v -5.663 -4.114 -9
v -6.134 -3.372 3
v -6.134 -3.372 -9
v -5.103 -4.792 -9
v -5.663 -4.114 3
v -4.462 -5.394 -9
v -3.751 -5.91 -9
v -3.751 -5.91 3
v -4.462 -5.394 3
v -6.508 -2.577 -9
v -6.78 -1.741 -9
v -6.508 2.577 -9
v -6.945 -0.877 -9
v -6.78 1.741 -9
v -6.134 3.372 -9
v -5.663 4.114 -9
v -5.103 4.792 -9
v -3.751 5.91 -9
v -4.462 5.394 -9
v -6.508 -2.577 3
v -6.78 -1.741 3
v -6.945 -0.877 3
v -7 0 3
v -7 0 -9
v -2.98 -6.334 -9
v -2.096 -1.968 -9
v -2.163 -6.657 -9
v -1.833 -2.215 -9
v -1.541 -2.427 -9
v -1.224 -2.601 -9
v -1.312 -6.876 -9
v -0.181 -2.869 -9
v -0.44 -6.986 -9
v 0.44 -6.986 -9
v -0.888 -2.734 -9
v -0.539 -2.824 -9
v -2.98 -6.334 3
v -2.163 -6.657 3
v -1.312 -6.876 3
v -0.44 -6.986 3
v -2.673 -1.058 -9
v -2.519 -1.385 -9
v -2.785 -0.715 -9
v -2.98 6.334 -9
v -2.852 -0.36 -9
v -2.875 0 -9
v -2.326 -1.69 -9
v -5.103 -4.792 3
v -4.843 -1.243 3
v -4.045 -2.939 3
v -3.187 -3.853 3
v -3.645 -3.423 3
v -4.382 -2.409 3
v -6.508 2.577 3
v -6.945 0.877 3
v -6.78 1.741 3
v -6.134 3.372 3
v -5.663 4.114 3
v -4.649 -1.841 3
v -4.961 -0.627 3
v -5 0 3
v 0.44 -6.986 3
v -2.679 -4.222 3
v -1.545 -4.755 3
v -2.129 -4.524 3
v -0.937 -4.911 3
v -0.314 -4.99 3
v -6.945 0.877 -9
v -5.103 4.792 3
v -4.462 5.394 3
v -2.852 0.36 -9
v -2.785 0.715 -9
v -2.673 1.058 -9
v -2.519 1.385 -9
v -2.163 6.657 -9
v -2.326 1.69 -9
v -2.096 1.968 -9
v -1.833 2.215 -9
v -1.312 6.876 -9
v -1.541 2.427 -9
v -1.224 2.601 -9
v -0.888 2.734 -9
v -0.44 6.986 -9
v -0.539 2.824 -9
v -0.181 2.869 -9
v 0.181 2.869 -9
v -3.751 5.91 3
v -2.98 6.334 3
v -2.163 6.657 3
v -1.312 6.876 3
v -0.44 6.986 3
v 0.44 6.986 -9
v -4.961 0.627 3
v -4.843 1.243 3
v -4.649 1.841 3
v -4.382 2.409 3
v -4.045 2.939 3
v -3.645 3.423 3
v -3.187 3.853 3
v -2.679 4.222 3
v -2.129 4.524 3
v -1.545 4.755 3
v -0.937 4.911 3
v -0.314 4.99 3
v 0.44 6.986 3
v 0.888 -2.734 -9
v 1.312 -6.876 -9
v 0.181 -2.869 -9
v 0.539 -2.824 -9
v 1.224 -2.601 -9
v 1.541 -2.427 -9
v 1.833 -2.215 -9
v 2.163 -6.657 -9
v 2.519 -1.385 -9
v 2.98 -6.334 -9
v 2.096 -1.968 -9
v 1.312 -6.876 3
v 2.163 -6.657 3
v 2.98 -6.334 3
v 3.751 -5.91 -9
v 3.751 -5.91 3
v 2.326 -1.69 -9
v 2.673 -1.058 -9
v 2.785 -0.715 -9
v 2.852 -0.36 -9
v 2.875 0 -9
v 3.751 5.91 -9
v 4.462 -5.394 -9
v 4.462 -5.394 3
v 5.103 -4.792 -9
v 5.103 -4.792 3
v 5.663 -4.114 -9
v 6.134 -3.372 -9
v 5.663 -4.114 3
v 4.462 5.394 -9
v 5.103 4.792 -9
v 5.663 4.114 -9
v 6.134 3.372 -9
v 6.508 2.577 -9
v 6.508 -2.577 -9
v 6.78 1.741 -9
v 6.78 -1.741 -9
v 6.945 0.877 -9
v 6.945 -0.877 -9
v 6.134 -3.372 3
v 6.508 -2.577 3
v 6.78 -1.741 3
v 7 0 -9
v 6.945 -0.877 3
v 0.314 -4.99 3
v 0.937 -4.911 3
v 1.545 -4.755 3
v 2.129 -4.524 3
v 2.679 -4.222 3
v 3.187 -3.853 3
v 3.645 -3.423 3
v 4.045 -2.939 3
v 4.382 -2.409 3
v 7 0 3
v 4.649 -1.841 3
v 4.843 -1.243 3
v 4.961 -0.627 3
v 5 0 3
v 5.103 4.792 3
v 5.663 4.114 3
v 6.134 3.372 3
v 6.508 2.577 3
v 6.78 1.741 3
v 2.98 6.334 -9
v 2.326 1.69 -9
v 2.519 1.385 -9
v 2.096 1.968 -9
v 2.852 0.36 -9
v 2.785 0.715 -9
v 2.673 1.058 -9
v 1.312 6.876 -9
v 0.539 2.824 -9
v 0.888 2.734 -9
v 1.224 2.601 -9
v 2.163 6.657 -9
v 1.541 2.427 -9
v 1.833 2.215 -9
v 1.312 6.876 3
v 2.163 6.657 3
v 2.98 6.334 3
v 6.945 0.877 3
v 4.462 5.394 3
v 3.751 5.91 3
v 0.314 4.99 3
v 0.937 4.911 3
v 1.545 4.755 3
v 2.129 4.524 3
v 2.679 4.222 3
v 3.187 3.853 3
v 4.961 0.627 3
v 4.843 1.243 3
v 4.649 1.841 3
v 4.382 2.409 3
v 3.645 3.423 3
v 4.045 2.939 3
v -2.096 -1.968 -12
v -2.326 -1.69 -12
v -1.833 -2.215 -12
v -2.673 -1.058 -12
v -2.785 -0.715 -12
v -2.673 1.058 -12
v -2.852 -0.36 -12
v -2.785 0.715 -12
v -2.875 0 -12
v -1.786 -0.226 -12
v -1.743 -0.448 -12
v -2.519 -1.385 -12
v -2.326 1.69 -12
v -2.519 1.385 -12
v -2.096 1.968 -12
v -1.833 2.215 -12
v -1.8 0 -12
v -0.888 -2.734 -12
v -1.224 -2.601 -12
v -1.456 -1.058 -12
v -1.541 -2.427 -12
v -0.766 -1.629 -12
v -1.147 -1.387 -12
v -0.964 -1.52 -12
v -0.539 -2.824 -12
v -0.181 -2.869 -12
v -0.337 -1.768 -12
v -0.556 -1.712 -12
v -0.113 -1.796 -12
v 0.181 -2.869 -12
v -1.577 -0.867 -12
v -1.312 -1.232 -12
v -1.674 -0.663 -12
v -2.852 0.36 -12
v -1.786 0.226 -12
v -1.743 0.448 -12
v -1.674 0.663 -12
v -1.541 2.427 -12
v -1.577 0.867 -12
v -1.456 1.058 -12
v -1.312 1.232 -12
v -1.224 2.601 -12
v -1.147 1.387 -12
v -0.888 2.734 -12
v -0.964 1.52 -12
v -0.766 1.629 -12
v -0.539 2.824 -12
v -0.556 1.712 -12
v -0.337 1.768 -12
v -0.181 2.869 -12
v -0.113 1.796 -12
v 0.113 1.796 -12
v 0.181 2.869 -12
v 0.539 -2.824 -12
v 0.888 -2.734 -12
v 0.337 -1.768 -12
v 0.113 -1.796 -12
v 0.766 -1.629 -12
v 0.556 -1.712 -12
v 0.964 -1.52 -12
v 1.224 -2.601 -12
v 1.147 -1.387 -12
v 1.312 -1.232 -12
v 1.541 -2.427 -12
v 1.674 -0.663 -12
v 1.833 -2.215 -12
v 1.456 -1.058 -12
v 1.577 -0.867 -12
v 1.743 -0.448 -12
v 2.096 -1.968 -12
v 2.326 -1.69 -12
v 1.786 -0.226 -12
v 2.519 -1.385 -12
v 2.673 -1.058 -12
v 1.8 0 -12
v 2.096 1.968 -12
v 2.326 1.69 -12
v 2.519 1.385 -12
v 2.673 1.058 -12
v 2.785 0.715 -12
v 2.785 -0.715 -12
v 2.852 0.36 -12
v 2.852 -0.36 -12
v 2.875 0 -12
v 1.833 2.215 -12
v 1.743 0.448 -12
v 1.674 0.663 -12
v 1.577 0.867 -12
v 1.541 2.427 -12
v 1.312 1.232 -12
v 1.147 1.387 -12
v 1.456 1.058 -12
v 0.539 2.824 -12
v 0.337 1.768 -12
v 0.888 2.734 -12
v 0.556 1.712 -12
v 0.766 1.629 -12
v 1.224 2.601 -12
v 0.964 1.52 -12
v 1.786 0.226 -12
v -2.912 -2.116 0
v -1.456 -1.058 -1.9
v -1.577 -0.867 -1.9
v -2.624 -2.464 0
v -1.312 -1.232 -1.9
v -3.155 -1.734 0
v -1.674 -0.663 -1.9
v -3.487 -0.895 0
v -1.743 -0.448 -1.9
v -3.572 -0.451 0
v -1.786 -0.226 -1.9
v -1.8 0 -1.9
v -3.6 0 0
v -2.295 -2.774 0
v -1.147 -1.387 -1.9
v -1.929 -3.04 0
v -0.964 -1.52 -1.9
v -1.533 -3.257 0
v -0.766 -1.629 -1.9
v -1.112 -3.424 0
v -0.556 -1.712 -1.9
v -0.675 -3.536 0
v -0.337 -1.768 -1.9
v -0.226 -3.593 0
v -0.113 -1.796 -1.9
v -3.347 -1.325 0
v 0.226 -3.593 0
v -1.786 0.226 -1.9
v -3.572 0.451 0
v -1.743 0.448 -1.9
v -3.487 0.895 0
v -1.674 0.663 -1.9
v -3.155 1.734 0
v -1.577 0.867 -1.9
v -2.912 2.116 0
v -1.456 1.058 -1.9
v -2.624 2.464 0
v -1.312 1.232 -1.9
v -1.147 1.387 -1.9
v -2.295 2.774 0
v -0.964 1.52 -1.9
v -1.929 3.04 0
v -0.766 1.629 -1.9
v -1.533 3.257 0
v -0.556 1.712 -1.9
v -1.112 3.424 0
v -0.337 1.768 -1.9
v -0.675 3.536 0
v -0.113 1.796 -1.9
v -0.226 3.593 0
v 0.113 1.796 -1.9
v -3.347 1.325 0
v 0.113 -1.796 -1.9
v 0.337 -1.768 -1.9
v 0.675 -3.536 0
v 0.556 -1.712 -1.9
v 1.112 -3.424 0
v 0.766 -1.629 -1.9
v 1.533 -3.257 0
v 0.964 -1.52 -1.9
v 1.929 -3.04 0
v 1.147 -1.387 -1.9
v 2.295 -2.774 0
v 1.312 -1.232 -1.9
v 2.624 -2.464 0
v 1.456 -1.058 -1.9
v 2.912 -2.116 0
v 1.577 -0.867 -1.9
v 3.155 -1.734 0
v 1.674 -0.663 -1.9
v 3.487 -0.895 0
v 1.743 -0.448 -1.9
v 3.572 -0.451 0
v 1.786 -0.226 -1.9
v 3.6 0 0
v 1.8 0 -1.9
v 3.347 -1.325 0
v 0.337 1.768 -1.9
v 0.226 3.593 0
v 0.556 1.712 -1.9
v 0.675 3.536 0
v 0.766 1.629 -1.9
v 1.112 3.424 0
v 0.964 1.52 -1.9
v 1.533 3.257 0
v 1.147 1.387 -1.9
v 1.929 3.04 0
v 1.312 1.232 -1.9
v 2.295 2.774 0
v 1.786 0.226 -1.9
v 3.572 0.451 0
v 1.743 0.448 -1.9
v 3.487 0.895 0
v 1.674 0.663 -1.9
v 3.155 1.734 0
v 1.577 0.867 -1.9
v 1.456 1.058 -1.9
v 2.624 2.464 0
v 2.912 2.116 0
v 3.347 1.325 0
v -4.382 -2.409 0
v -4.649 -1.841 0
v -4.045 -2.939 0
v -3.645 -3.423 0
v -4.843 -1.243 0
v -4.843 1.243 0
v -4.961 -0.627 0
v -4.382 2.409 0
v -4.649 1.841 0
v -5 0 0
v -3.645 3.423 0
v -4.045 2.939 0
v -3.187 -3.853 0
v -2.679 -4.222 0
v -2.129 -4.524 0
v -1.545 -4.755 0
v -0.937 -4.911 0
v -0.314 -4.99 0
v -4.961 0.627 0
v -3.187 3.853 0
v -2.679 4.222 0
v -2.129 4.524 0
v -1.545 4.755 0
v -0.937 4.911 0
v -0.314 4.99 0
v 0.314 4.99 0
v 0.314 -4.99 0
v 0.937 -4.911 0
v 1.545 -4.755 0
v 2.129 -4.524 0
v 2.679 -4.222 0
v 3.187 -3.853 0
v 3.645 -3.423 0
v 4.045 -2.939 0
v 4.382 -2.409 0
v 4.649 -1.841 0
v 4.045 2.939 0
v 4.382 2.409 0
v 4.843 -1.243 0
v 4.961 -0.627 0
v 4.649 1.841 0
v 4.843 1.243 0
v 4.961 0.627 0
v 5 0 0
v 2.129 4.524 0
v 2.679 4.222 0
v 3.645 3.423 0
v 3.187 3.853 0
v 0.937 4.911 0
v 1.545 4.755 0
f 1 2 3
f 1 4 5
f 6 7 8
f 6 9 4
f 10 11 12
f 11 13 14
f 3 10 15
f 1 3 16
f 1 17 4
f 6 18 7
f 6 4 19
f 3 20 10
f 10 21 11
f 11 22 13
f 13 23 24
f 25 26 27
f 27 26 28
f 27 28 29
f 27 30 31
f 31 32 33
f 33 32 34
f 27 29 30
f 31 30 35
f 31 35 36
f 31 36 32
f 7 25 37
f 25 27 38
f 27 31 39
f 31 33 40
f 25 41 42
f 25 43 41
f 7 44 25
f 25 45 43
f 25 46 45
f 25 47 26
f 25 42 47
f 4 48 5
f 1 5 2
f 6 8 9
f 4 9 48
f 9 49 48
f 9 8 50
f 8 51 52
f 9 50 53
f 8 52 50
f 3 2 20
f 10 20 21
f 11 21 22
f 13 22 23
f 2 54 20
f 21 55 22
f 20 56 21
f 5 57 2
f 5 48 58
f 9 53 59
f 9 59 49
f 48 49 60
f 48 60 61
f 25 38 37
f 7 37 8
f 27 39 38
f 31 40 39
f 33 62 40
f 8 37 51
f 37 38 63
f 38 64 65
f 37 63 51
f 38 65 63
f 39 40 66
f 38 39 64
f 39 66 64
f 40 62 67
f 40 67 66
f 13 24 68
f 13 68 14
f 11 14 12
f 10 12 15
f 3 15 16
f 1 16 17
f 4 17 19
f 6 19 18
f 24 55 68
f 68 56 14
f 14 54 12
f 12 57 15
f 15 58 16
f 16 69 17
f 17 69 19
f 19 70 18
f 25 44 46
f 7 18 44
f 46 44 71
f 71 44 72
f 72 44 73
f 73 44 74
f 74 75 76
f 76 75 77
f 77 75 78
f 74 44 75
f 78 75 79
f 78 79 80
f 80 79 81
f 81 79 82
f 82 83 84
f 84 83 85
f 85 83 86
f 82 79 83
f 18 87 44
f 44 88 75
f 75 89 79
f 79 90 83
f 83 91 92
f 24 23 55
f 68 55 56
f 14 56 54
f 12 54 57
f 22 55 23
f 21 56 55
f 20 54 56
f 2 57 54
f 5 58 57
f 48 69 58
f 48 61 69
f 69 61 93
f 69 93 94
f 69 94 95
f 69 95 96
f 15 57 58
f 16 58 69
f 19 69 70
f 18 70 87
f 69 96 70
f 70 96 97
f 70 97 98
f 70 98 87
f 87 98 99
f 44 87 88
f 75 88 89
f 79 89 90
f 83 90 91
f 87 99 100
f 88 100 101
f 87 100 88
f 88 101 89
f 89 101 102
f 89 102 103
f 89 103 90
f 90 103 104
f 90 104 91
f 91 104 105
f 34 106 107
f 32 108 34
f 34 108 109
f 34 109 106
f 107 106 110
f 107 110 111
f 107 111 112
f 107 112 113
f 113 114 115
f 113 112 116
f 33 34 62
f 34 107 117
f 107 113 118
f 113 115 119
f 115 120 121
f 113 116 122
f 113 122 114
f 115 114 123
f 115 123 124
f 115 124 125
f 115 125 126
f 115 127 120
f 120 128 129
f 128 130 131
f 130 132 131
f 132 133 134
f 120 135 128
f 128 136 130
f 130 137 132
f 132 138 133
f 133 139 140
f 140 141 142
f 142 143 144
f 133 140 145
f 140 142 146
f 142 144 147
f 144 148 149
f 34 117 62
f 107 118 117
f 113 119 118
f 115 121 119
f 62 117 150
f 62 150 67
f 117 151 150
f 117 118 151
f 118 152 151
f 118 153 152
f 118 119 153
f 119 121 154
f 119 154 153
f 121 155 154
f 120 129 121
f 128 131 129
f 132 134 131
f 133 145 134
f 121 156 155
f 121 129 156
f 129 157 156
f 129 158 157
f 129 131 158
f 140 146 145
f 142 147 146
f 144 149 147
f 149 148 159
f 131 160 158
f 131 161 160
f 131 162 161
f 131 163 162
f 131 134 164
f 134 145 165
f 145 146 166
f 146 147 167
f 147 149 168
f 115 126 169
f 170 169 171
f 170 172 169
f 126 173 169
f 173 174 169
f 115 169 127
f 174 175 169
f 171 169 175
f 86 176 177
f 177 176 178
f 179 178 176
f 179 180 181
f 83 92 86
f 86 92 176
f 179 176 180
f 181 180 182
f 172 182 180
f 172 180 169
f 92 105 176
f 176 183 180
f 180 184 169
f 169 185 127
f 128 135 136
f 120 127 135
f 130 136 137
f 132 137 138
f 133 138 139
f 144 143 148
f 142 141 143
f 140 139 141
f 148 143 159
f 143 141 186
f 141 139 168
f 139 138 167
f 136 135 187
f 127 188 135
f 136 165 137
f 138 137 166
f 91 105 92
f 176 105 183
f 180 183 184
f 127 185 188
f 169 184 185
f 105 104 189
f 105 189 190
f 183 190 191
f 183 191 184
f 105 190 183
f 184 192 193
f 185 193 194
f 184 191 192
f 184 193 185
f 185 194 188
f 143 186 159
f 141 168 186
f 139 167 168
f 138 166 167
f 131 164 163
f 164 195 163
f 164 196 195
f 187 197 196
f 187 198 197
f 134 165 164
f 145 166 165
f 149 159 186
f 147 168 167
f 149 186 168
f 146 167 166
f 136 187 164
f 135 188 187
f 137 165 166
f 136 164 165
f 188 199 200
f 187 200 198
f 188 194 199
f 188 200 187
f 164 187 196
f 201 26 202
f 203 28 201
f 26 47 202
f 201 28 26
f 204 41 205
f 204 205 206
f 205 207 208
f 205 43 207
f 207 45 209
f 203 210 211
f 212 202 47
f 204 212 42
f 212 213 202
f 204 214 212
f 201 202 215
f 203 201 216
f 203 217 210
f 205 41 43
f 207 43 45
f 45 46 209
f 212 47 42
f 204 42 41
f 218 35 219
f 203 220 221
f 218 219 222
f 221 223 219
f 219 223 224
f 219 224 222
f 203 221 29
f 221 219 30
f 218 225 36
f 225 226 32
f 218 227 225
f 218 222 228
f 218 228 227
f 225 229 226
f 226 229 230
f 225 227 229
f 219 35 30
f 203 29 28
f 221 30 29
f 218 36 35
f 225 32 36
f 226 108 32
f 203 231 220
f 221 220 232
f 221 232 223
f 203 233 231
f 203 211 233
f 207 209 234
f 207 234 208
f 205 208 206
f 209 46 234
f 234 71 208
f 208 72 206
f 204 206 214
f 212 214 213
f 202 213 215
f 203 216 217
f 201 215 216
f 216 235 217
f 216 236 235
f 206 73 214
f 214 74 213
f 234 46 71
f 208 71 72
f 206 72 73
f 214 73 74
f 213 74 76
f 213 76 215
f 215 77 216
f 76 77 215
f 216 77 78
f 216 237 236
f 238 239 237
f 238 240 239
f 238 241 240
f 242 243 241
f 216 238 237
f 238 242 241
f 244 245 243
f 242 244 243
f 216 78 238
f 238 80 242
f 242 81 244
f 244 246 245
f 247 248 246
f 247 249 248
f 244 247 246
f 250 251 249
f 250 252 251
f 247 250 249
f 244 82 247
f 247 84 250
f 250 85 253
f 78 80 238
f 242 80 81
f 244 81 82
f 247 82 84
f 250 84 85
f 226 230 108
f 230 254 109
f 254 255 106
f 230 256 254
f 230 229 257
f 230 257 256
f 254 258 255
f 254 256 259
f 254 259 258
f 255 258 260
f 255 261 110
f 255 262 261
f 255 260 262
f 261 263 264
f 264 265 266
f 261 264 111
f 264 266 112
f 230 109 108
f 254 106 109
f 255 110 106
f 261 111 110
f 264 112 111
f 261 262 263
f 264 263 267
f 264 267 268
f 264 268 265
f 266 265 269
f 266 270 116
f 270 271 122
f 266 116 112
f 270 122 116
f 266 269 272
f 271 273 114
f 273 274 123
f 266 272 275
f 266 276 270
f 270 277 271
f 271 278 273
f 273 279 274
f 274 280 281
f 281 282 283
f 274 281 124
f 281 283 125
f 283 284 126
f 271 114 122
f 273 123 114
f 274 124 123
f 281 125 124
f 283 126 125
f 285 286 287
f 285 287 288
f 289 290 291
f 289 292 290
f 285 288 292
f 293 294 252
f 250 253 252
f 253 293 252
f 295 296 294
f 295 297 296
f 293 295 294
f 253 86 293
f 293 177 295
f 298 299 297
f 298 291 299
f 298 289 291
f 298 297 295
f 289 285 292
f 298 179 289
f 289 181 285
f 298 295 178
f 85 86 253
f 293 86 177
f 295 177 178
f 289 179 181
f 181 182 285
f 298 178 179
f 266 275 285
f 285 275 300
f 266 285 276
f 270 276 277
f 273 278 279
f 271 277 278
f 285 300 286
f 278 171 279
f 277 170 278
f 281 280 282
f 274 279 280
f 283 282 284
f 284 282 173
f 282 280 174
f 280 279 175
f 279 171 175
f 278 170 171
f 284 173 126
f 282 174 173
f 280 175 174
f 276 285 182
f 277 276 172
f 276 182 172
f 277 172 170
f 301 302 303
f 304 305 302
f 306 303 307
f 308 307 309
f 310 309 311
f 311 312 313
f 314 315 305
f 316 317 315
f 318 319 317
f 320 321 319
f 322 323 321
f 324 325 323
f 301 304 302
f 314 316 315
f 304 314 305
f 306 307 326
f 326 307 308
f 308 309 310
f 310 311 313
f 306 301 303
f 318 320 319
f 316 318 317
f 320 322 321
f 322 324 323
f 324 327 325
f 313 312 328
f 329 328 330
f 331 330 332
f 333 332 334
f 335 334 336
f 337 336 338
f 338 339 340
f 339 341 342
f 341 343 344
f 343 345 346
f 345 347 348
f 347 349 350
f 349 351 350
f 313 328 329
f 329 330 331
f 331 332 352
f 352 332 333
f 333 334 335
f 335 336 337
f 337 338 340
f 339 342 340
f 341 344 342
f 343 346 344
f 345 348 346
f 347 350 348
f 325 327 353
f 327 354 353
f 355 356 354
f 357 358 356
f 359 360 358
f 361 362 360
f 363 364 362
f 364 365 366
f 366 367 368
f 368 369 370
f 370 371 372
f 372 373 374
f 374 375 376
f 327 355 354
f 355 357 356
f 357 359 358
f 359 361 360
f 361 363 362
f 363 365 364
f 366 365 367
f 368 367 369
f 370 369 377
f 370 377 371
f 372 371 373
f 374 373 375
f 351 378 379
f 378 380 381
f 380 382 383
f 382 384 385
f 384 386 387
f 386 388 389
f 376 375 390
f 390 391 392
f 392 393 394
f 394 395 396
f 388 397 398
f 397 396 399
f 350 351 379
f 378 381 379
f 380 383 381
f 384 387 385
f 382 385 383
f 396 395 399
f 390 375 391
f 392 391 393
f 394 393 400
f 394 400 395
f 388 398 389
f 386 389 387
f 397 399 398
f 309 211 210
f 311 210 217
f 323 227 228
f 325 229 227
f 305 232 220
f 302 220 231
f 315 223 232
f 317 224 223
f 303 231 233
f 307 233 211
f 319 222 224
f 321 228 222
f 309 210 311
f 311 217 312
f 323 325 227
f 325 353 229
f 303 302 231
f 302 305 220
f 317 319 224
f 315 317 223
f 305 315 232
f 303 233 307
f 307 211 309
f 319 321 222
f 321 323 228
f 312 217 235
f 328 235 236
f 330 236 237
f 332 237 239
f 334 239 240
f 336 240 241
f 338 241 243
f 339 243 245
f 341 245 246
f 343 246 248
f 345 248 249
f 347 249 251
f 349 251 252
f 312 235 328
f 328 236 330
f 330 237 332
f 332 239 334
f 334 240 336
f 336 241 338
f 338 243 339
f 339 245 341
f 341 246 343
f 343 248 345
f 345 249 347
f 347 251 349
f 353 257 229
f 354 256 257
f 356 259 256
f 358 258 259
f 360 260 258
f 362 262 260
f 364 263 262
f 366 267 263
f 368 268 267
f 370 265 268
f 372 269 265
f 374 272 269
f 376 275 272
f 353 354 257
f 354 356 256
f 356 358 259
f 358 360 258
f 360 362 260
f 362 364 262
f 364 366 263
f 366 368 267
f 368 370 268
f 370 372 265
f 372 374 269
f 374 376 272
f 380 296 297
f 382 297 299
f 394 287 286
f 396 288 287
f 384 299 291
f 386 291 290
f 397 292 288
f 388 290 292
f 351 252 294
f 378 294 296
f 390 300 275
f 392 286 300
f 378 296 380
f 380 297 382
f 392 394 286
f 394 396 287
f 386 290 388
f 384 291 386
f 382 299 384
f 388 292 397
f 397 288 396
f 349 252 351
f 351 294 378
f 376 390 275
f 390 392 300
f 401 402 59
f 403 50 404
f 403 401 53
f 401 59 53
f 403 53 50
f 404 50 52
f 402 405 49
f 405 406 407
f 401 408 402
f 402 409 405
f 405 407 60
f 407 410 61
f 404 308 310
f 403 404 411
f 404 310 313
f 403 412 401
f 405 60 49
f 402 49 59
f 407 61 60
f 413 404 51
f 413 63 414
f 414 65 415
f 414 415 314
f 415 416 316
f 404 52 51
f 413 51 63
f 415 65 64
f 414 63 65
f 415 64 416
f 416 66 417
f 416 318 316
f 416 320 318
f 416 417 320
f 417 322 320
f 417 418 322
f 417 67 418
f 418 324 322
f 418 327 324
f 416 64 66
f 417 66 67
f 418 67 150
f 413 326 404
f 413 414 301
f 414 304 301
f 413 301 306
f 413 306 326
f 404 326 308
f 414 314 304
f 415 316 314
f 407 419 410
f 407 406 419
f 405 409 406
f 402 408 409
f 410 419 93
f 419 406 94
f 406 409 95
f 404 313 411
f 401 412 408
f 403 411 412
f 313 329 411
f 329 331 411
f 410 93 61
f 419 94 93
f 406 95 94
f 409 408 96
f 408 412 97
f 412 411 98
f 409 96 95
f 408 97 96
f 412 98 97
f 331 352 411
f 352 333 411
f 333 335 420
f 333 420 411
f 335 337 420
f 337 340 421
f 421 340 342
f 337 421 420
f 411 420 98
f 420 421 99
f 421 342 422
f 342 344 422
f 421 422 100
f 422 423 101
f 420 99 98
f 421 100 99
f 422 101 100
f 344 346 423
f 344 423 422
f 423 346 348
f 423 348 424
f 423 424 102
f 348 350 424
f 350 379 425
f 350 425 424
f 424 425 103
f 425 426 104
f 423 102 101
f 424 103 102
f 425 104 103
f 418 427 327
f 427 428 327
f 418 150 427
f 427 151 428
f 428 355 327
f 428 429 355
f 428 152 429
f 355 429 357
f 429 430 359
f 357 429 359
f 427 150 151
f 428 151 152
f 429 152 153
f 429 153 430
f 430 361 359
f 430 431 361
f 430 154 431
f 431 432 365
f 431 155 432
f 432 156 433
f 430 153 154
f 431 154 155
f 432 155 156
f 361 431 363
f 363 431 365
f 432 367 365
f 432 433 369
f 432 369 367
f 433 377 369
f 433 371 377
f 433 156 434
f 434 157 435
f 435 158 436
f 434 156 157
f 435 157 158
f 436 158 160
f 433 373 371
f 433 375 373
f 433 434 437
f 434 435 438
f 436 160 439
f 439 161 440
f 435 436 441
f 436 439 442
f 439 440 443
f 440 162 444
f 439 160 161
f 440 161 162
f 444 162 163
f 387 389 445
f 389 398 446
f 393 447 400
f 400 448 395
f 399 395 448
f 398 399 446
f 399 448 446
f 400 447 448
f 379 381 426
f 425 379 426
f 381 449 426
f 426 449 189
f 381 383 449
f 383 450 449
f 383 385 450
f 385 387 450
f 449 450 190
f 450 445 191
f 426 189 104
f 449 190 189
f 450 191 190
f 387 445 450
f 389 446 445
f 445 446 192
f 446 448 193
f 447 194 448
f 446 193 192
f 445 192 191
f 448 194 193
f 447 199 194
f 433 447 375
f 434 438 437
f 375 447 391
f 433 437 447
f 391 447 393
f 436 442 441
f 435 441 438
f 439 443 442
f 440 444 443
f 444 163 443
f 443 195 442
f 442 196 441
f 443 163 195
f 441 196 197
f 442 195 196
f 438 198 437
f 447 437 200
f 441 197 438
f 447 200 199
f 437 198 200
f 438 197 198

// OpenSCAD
$fn = 50;


difference() {
	union() {
		translate(v = [0, 0, -9.0000000000]) {
			cylinder(h = 12, r = 7.0000000000);
		}
		#translate(v = [0, 0, -12.0000000000]) {
			cylinder(h = 12, r = 2.8750000000);
		}
	}
	union() {
		translate(v = [0, 0, 0]) {
			rotate(a = [0, 0, 0]) {
				difference() {
					union() {
						translate(v = [0, 0, -12.0000000000]) {
							cylinder(h = 12, r = 1.5000000000);
						}
						translate(v = [0, 0, -1.9000000000]) {
							cylinder(h = 1.9000000000, r1 = 1.8000000000, r2 = 3.6000000000);
						}
						translate(v = [0, 0, -12.0000000000]) {
							cylinder(h = 12, r = 1.8000000000);
						}
						translate(v = [0, 0, -12.0000000000]) {
							cylinder(h = 12, r = 1.5000000000);
						}
					}
					union();
				}
			}
		}
		#cylinder(h = 3, r = 5.0000000000);
	}
}
